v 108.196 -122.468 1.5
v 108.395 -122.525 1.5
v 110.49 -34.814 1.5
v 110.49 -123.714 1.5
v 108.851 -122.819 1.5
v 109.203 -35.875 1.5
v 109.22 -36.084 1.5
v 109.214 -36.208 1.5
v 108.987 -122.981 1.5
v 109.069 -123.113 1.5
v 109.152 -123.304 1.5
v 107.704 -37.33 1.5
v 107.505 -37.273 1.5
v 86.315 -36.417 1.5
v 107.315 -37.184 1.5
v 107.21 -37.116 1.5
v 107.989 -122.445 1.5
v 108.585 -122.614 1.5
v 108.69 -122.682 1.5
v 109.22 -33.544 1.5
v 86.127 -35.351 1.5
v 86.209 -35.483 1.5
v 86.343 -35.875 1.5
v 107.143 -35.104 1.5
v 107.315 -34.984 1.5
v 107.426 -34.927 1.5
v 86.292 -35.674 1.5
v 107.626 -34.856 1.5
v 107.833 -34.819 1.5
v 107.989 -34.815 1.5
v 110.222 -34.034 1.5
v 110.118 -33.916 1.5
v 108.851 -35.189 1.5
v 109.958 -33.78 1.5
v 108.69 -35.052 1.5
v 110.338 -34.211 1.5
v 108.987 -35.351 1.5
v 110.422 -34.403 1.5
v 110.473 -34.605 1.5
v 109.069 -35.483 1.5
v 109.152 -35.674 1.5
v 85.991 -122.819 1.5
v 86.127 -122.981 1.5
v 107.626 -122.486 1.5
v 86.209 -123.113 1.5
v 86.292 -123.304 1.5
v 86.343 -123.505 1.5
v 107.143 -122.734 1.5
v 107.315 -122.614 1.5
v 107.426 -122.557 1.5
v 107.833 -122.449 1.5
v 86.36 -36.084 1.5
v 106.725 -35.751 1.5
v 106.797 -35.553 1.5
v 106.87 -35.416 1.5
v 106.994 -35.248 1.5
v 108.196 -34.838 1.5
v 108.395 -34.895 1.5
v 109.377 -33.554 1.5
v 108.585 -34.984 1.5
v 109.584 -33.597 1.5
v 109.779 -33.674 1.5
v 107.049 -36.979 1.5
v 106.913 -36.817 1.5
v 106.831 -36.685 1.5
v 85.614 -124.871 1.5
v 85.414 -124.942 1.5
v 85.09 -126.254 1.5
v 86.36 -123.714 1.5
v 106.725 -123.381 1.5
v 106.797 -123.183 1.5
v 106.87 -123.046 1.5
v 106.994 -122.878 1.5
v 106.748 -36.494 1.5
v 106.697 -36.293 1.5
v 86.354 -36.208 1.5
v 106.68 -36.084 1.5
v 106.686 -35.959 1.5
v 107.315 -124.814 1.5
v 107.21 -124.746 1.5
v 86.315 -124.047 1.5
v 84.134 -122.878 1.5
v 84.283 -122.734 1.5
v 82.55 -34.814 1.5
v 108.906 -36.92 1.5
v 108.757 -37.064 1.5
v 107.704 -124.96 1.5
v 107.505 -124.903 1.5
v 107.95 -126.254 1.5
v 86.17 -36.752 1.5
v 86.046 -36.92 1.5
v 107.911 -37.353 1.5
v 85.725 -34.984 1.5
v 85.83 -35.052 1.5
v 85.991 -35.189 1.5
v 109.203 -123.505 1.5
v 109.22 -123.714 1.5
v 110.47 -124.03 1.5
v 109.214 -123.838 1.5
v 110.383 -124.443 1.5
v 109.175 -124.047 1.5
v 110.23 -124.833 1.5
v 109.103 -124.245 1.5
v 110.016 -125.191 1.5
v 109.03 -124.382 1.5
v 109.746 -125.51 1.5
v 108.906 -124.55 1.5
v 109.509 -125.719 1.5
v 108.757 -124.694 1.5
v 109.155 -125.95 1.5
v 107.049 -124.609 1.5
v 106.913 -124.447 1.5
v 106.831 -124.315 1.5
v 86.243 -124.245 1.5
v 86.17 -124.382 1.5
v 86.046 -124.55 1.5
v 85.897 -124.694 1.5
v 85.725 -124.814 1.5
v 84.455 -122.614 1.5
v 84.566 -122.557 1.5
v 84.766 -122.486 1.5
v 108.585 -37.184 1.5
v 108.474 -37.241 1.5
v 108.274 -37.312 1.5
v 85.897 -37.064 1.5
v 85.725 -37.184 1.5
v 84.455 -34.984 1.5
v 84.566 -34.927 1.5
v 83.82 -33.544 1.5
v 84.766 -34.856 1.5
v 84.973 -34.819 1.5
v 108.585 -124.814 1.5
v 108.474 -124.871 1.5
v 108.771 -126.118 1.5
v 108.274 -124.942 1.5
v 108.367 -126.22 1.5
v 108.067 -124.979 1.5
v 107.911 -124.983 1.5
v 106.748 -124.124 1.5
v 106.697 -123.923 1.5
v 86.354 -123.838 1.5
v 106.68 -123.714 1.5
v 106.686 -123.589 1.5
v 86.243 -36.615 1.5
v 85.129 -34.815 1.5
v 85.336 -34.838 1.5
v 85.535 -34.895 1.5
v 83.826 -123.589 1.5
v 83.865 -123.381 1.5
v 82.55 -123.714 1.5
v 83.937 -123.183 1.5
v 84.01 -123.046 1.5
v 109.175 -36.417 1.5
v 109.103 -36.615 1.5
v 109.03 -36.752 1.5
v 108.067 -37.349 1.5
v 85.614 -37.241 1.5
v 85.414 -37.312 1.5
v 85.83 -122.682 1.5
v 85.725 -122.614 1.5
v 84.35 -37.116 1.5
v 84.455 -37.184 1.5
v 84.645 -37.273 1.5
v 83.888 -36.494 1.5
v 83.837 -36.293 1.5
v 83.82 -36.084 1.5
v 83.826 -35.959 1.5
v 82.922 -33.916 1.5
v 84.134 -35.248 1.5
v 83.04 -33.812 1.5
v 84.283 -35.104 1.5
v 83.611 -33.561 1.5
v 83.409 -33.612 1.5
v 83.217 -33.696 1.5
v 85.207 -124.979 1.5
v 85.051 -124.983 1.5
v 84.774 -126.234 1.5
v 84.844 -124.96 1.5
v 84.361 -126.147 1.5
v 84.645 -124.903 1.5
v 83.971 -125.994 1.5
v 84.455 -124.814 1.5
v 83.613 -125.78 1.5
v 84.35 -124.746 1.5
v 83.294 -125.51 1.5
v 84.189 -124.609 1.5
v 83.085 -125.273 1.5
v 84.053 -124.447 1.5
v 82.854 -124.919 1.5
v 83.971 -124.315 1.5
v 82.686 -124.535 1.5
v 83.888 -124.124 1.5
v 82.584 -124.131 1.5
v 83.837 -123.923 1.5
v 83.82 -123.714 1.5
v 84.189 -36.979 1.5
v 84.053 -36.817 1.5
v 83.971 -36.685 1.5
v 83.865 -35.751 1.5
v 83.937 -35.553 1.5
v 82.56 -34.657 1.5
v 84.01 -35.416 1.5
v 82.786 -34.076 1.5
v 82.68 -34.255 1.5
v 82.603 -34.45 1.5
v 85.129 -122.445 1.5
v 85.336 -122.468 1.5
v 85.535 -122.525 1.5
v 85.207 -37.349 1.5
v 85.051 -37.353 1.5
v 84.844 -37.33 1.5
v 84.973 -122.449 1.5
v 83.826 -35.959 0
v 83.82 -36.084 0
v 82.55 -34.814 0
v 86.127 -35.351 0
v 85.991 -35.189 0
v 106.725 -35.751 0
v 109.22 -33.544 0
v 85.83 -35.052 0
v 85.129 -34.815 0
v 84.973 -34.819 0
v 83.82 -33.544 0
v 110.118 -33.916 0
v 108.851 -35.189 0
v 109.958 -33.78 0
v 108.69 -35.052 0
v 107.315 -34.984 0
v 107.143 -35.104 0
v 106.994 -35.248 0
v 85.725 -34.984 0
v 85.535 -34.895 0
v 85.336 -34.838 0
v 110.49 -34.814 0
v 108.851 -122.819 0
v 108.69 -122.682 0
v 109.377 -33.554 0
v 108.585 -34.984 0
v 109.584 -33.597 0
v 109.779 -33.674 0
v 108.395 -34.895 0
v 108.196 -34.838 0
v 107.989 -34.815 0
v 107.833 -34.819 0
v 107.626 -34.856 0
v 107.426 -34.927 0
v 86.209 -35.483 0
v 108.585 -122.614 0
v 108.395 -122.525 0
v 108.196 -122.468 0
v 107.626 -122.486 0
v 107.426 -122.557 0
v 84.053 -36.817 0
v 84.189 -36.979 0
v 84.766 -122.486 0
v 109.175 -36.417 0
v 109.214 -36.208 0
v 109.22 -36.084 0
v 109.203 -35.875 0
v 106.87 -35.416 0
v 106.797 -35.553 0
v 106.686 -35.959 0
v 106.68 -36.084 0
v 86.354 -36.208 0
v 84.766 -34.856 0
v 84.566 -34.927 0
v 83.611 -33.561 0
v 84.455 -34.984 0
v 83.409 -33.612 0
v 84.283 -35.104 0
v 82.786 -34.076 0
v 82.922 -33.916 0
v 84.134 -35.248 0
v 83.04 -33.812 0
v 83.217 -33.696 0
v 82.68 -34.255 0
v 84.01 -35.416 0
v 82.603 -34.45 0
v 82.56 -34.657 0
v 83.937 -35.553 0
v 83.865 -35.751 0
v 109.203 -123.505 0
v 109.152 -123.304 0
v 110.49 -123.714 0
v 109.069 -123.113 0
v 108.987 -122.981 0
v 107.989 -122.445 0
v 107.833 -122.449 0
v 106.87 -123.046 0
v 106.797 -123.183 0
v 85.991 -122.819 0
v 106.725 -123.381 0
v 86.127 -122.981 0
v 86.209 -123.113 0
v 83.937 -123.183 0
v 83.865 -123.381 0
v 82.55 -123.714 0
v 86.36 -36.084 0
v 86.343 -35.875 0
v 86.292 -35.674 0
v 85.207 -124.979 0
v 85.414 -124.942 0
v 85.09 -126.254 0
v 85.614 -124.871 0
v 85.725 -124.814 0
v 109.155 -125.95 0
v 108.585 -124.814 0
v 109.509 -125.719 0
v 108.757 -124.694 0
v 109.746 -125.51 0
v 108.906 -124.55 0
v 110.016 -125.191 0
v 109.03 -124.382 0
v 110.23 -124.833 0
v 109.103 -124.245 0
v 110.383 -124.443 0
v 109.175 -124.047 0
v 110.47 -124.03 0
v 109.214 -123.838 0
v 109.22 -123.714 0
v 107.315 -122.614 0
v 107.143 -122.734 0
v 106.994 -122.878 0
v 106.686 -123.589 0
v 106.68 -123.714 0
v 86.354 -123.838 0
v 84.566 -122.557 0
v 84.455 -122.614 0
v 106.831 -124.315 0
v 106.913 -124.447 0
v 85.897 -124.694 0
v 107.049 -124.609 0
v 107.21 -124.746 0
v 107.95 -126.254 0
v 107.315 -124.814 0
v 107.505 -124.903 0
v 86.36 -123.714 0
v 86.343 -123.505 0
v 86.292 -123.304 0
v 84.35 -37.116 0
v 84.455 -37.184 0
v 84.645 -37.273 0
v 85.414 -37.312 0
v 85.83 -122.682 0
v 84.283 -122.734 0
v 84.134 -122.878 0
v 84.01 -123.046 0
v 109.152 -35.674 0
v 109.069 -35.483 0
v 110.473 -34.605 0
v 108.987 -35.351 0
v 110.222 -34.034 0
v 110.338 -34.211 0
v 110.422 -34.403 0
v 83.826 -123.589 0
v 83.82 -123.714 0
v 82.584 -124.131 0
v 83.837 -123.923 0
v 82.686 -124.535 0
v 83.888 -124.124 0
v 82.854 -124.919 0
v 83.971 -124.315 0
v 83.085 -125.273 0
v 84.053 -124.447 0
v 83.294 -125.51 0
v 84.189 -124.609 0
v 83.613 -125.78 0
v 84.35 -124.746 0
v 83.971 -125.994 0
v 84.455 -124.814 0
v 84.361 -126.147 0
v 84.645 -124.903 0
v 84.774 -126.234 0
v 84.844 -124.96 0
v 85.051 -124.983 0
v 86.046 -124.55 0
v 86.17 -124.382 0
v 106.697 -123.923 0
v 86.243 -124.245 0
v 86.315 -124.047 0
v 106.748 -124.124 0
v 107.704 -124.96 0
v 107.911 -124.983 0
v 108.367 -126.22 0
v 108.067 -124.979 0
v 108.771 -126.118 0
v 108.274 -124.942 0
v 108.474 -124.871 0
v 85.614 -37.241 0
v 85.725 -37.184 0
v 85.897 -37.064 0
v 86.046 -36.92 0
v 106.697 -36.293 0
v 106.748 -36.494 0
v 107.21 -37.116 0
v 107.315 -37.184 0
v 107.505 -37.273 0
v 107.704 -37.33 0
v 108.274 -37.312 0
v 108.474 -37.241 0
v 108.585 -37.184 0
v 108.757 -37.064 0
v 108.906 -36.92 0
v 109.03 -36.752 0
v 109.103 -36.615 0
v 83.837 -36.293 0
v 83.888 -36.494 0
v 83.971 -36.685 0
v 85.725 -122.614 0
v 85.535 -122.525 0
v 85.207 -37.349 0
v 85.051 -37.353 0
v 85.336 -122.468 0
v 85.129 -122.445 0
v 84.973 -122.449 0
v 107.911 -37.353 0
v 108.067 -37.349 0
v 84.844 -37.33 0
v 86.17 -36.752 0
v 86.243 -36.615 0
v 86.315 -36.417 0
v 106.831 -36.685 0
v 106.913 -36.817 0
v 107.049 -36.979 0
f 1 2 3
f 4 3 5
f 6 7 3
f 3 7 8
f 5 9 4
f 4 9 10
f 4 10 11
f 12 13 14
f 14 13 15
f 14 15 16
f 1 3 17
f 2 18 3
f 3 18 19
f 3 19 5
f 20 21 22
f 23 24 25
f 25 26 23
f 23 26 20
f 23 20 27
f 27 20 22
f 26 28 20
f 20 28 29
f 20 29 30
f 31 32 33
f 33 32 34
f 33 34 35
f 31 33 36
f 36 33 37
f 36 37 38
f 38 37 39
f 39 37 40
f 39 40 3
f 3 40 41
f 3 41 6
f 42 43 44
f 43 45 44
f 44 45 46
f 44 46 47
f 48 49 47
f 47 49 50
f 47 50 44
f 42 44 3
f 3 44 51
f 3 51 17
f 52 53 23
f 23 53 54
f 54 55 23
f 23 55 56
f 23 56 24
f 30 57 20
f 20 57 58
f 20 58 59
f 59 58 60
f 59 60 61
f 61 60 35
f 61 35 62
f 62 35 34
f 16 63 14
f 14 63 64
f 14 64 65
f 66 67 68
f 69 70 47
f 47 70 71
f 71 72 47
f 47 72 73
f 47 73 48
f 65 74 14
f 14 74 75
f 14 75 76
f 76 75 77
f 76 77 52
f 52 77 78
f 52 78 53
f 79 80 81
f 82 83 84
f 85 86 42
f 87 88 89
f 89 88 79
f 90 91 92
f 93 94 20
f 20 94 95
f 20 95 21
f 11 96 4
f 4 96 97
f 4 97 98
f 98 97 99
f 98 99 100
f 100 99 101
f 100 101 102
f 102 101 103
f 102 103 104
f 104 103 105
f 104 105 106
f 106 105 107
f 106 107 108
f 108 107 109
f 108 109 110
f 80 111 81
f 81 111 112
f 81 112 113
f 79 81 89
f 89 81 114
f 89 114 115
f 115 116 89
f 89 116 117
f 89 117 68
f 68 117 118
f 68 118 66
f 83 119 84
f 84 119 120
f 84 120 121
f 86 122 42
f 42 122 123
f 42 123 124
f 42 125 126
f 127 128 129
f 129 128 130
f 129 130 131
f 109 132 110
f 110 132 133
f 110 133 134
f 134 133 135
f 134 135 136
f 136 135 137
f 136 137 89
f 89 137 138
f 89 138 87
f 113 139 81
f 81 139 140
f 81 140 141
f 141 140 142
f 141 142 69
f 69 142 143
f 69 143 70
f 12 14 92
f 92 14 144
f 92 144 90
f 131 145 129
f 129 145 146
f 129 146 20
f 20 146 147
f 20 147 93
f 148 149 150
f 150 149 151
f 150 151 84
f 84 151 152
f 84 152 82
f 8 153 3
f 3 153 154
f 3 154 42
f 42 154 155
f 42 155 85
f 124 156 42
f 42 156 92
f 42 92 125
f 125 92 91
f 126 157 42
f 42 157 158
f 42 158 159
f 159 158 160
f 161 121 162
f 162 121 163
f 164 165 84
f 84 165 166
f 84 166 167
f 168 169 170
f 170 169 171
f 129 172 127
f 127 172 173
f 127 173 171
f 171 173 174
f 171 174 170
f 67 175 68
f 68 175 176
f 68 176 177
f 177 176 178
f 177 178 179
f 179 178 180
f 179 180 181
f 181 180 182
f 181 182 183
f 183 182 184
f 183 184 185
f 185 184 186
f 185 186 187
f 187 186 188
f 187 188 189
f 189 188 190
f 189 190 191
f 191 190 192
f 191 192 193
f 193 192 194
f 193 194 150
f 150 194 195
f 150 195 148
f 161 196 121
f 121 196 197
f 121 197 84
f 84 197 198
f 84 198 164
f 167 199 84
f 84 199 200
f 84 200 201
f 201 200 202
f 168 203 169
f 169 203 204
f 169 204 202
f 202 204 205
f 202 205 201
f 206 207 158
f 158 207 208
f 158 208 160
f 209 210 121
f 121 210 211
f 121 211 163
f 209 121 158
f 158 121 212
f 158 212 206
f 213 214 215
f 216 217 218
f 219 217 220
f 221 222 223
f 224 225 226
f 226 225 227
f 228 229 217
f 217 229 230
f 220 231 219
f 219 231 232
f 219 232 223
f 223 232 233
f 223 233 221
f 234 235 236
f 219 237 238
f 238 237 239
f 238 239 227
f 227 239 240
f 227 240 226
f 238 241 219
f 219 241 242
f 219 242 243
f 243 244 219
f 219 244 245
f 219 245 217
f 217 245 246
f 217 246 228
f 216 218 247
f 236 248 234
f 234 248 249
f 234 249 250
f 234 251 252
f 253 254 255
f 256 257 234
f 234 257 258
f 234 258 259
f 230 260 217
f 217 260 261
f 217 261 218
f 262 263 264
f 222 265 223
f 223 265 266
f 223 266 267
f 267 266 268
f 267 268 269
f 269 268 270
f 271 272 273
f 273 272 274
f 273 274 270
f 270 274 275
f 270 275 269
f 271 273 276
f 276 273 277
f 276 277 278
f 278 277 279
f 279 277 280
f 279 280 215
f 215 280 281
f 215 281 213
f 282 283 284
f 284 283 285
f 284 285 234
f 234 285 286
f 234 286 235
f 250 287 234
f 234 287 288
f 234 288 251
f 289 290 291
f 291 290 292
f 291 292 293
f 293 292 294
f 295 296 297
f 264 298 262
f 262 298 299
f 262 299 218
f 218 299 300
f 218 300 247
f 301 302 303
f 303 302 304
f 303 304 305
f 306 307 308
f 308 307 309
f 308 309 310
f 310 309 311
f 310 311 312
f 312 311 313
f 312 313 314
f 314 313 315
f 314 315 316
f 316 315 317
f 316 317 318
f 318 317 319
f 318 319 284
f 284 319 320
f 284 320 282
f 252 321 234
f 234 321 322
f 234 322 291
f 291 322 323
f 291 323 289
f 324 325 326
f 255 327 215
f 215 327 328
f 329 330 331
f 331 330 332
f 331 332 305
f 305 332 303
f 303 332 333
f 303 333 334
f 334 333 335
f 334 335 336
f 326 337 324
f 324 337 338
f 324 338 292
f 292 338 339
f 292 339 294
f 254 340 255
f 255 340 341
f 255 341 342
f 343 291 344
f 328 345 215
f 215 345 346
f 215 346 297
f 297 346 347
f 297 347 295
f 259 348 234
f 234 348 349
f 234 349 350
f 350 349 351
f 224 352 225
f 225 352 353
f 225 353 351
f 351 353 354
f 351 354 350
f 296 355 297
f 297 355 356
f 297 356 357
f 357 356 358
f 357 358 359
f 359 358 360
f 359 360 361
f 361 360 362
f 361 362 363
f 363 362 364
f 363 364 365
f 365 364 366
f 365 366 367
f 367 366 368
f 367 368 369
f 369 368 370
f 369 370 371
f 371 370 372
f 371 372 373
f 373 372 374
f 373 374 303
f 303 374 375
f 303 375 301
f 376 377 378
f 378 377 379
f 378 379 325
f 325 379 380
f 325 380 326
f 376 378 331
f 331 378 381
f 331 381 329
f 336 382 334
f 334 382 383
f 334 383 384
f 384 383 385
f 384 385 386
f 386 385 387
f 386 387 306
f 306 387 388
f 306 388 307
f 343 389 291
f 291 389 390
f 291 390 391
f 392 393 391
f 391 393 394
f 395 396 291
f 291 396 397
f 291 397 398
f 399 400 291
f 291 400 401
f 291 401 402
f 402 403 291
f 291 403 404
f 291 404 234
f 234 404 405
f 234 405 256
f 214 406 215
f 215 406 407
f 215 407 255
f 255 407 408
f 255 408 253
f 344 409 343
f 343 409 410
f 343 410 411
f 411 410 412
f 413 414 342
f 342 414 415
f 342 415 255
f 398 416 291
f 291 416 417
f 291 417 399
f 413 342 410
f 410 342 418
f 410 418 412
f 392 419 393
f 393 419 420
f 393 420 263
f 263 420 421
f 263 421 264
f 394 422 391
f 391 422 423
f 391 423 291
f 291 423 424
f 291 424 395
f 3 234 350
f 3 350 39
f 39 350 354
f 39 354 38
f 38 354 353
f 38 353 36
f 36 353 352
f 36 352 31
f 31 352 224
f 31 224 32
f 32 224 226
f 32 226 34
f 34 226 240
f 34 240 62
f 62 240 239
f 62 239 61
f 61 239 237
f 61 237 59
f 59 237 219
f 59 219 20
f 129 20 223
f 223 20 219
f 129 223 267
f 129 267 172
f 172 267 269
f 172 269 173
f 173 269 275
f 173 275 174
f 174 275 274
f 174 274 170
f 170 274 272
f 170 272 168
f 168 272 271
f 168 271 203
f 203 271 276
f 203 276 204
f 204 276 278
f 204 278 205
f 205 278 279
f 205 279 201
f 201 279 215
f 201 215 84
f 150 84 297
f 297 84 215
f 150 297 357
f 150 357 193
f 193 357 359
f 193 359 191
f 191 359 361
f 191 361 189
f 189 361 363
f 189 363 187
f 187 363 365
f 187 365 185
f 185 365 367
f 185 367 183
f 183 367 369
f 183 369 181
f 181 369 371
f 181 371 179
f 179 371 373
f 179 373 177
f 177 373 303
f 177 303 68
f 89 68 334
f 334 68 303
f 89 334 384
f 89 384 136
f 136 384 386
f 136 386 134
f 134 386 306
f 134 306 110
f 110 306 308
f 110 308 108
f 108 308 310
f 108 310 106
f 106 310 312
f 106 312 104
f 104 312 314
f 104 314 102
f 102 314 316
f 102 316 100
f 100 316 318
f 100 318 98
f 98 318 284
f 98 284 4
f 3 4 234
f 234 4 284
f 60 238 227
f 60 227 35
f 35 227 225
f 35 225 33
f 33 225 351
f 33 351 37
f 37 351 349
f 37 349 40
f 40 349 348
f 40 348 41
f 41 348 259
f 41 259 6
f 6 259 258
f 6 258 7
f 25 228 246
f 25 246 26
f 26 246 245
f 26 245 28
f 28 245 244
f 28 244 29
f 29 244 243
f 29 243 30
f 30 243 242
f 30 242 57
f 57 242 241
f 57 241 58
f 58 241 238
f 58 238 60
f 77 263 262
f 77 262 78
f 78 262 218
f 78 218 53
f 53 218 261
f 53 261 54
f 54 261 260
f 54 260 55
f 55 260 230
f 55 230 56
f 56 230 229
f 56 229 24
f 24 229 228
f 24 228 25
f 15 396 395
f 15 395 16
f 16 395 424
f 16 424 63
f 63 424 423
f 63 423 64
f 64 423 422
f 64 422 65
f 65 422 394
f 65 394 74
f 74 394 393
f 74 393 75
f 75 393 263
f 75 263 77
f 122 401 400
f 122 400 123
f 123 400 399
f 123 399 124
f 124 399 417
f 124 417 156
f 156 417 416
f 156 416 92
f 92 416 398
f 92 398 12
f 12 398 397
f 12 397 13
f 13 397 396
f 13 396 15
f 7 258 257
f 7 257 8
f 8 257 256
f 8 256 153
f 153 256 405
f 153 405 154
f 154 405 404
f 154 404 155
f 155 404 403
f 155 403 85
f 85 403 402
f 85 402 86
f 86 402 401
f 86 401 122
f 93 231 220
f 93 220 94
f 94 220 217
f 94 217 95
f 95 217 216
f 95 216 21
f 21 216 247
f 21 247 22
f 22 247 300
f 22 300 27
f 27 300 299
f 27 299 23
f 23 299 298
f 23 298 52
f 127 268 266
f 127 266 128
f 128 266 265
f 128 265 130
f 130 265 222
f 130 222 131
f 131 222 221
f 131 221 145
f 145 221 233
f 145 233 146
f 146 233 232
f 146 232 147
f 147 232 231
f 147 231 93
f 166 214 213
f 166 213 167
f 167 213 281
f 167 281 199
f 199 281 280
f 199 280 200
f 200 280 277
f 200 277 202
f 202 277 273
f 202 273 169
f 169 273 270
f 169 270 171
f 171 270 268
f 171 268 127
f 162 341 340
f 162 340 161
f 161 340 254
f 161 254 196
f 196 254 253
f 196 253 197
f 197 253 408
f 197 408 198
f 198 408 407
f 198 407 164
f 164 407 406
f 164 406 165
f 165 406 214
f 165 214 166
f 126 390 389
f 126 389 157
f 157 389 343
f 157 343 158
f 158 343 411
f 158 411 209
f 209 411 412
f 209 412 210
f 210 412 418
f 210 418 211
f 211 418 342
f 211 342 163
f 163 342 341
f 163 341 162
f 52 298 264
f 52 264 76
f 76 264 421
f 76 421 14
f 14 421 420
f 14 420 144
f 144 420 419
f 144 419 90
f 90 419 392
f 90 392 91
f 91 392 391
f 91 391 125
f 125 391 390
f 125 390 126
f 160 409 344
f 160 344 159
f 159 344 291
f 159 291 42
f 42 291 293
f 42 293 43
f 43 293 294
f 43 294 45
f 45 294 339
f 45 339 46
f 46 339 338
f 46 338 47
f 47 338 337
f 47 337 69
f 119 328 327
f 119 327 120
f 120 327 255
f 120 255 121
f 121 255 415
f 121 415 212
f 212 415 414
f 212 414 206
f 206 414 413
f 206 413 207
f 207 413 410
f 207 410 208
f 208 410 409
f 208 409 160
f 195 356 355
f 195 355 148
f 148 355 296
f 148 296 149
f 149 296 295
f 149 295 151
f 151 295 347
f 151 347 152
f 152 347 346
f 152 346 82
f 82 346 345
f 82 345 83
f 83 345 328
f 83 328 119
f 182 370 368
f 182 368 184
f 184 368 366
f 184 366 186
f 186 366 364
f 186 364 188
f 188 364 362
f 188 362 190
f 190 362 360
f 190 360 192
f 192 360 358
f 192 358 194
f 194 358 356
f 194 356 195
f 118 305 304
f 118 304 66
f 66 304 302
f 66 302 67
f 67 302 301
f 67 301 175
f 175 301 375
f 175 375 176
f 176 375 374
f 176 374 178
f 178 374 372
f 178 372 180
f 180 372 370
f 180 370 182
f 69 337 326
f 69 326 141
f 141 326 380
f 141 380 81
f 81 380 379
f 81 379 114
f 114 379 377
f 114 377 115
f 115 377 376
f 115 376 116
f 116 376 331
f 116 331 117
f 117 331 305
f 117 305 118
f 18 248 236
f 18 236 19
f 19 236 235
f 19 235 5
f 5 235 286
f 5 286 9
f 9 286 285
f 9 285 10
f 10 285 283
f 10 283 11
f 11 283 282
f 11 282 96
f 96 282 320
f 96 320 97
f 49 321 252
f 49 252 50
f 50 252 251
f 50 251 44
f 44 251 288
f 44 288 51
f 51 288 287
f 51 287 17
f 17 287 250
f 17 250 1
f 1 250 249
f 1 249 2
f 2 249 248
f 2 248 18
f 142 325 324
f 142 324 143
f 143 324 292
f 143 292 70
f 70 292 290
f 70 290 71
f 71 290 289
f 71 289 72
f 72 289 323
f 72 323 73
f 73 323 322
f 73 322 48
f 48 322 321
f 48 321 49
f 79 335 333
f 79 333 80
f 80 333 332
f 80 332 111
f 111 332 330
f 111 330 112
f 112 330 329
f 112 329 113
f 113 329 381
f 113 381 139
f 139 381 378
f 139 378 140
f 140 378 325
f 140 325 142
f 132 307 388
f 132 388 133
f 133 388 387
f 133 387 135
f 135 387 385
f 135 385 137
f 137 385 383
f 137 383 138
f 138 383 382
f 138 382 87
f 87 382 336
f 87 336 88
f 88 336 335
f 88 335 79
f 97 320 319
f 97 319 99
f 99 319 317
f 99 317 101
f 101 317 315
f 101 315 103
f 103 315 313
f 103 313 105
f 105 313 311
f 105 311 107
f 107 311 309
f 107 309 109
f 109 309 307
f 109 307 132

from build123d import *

# Parameters (mm, degrees)
BOSS_EXTRU_1_DEPTH = 1.5


with BuildPart() as part:
    # Model → Boss.-Extru.1 (new body)
    with BuildSketch(Plane.XY):
        with BuildLine():
            Line((110.49, -34.813931), (110.49, -38.623931))
            Line((110.49, -38.623931), (110.49, -39.893931))
            Line((110.49, -39.893931), (110.49, -123.713931))
            add(Edge.make_bspline(
                [(109.746051, -125.509982), (110.222394, -125.03364), (110.49, -124.387581), (110.49, -123.713931)],
                knots=[0, 0, 0, 0, 1, 1, 1, 1], degree=3))
            add(Edge.make_bspline(
                [(107.95, -126.253931), (108.62365, -126.253931), (109.269709, -125.986325), (109.746051, -125.509982)],
                knots=[0, 0, 0, 0, 1, 1, 1, 1], degree=3))
            Line((107.95, -126.253931), (85.09, -126.253931))
            add(Edge.make_bspline(
                [(83.293949, -125.509982), (83.770291, -125.986325), (84.41635, -126.253931), (85.09, -126.253931)],
                knots=[0, 0, 0, 0, 1, 1, 1, 1], degree=3))
            add(Edge.make_bspline(
                [(82.55, -123.713931), (82.55, -124.387581), (82.817606, -125.03364), (83.293949, -125.509982)],
                knots=[0, 0, 0, 0, 1, 1, 1, 1], degree=3))
            Line((82.55, -123.713931), (82.55, -39.893931))
            Line((82.55, -39.893931), (82.55, -38.623931))
            Line((82.55, -38.623931), (82.55, -34.813931))
            add(Edge.make_bspline(
                [(82.921974, -33.915905), (82.683803, -34.154076), (82.55, -34.477106), (82.55, -34.813931)],
                knots=[0, 0, 0, 0, 1, 1, 1, 1], degree=3))
            add(Edge.make_bspline(
                [(83.82, -33.543931), (83.483175, -33.543931), (83.160146, -33.677734), (82.921974, -33.915905)],
                knots=[0, 0, 0, 0, 1, 1, 1, 1], degree=3))
            Line((83.82, -33.543931), (109.22, -33.543931))
            add(Edge.make_bspline(
                [(110.118026, -33.915905), (109.879854, -33.677734), (109.556825, -33.543931), (109.22, -33.543931)],
                knots=[0, 0, 0, 0, 1, 1, 1, 1], degree=3))
            add(Edge.make_bspline(
                [(110.49, -34.813931), (110.49, -34.477106), (110.356197, -34.154076), (110.118026, -33.915905)],
                knots=[0, 0, 0, 0, 1, 1, 1, 1], degree=3))
        make_face()
        with BuildLine():
            add(Edge.make_bspline(
                [(109.22, -36.083931), (109.22, -36.537658), (108.977939, -36.956919), (108.585, -37.183783)],
                knots=[0, 0, 0, 0, 1, 1, 1, 1], degree=3))
            add(Edge.make_bspline(
                [(108.585, -37.183783), (108.192061, -37.410647), (107.707939, -37.410647), (107.315, -37.183783)],
                knots=[0, 0, 0, 0, 1, 1, 1, 1], degree=3))
            add(Edge.make_bspline(
                [(107.315, -37.183783), (106.922061, -36.956919), (106.68, -36.537658), (106.68, -36.083931)],
                knots=[0, 0, 0, 0, 1, 1, 1, 1], degree=3))
            add(Edge.make_bspline(
                [(106.68, -36.083931), (106.68, -35.630204), (106.922061, -35.210942), (107.315, -34.984079)],
                knots=[0, 0, 0, 0, 1, 1, 1, 1], degree=3))
            add(Edge.make_bspline(
                [(107.315, -34.984079), (107.707939, -34.757215), (108.192061, -34.757215), (108.585, -34.984079)],
                knots=[0, 0, 0, 0, 1, 1, 1, 1], degree=3))
            add(Edge.make_bspline(
                [(108.585, -34.984079), (108.977939, -35.210942), (109.22, -35.630204), (109.22, -36.083931)],
                knots=[0, 0, 0, 0, 1, 1, 1, 1], degree=3))
        make_face(mode=Mode.SUBTRACT)
        with BuildLine():
            add(Edge.make_bspline(
                [(86.36, -36.083931), (86.36, -36.537658), (86.117939, -36.956919), (85.725, -37.183783)],
                knots=[0, 0, 0, 0, 1, 1, 1, 1], degree=3))
            add(Edge.make_bspline(
                [(85.725, -37.183783), (85.332061, -37.410647), (84.847939, -37.410647), (84.455, -37.183783)],
                knots=[0, 0, 0, 0, 1, 1, 1, 1], degree=3))
            add(Edge.make_bspline(
                [(84.455, -37.183783), (84.062061, -36.956919), (83.82, -36.537658), (83.82, -36.083931)],
                knots=[0, 0, 0, 0, 1, 1, 1, 1], degree=3))
            add(Edge.make_bspline(
                [(83.82, -36.083931), (83.82, -35.630204), (84.062061, -35.210942), (84.455, -34.984079)],
                knots=[0, 0, 0, 0, 1, 1, 1, 1], degree=3))
            add(Edge.make_bspline(
                [(84.455, -34.984079), (84.847939, -34.757215), (85.332061, -34.757215), (85.725, -34.984079)],
                knots=[0, 0, 0, 0, 1, 1, 1, 1], degree=3))
            add(Edge.make_bspline(
                [(85.725, -34.984079), (86.117939, -35.210942), (86.36, -35.630204), (86.36, -36.083931)],
                knots=[0, 0, 0, 0, 1, 1, 1, 1], degree=3))
        make_face(mode=Mode.SUBTRACT)
        with BuildLine():
            add(Edge.make_bspline(
                [(86.36, -123.713931), (86.36, -124.167658), (86.117939, -124.586919), (85.725, -124.813783)],
                knots=[0, 0, 0, 0, 1, 1, 1, 1], degree=3))
            add(Edge.make_bspline(
                [(85.725, -124.813783), (85.332061, -125.040647), (84.847939, -125.040647), (84.455, -124.813783)],
                knots=[0, 0, 0, 0, 1, 1, 1, 1], degree=3))
            add(Edge.make_bspline(
                [(84.455, -124.813783), (84.062061, -124.586919), (83.82, -124.167658), (83.82, -123.713931)],
                knots=[0, 0, 0, 0, 1, 1, 1, 1], degree=3))
            add(Edge.make_bspline(
                [(83.82, -123.713931), (83.82, -123.260204), (84.062061, -122.840942), (84.455, -122.614079)],
                knots=[0, 0, 0, 0, 1, 1, 1, 1], degree=3))
            add(Edge.make_bspline(
                [(84.455, -122.614079), (84.847939, -122.387215), (85.332061, -122.387215), (85.725, -122.614079)],
                knots=[0, 0, 0, 0, 1, 1, 1, 1], degree=3))
            add(Edge.make_bspline(
                [(85.725, -122.614079), (86.117939, -122.840942), (86.36, -123.260204), (86.36, -123.713931)],
                knots=[0, 0, 0, 0, 1, 1, 1, 1], degree=3))
        make_face(mode=Mode.SUBTRACT)
        with BuildLine():
            add(Edge.make_bspline(
                [(109.22, -123.713931), (109.22, -124.167658), (108.977939, -124.586919), (108.585, -124.813783)],
                knots=[0, 0, 0, 0, 1, 1, 1, 1], degree=3))
            add(Edge.make_bspline(
                [(108.585, -124.813783), (108.192061, -125.040647), (107.707939, -125.040647), (107.315, -124.813783)],
                knots=[0, 0, 0, 0, 1, 1, 1, 1], degree=3))
            add(Edge.make_bspline(
                [(107.315, -124.813783), (106.922061, -124.586919), (106.68, -124.167658), (106.68, -123.713931)],
                knots=[0, 0, 0, 0, 1, 1, 1, 1], degree=3))
            add(Edge.make_bspline(
                [(106.68, -123.713931), (106.68, -123.260204), (106.922061, -122.840942), (107.315, -122.614079)],
                knots=[0, 0, 0, 0, 1, 1, 1, 1], degree=3))
            add(Edge.make_bspline(
                [(107.315, -122.614079), (107.707939, -122.387215), (108.192061, -122.387215), (108.585, -122.614079)],
                knots=[0, 0, 0, 0, 1, 1, 1, 1], degree=3))
            add(Edge.make_bspline(
                [(108.585, -122.614079), (108.977939, -122.840942), (109.22, -123.260204), (109.22, -123.713931)],
                knots=[0, 0, 0, 0, 1, 1, 1, 1], degree=3))
        make_face(mode=Mode.SUBTRACT)
    extrude(amount=BOSS_EXTRU_1_DEPTH)


solid = part.part
